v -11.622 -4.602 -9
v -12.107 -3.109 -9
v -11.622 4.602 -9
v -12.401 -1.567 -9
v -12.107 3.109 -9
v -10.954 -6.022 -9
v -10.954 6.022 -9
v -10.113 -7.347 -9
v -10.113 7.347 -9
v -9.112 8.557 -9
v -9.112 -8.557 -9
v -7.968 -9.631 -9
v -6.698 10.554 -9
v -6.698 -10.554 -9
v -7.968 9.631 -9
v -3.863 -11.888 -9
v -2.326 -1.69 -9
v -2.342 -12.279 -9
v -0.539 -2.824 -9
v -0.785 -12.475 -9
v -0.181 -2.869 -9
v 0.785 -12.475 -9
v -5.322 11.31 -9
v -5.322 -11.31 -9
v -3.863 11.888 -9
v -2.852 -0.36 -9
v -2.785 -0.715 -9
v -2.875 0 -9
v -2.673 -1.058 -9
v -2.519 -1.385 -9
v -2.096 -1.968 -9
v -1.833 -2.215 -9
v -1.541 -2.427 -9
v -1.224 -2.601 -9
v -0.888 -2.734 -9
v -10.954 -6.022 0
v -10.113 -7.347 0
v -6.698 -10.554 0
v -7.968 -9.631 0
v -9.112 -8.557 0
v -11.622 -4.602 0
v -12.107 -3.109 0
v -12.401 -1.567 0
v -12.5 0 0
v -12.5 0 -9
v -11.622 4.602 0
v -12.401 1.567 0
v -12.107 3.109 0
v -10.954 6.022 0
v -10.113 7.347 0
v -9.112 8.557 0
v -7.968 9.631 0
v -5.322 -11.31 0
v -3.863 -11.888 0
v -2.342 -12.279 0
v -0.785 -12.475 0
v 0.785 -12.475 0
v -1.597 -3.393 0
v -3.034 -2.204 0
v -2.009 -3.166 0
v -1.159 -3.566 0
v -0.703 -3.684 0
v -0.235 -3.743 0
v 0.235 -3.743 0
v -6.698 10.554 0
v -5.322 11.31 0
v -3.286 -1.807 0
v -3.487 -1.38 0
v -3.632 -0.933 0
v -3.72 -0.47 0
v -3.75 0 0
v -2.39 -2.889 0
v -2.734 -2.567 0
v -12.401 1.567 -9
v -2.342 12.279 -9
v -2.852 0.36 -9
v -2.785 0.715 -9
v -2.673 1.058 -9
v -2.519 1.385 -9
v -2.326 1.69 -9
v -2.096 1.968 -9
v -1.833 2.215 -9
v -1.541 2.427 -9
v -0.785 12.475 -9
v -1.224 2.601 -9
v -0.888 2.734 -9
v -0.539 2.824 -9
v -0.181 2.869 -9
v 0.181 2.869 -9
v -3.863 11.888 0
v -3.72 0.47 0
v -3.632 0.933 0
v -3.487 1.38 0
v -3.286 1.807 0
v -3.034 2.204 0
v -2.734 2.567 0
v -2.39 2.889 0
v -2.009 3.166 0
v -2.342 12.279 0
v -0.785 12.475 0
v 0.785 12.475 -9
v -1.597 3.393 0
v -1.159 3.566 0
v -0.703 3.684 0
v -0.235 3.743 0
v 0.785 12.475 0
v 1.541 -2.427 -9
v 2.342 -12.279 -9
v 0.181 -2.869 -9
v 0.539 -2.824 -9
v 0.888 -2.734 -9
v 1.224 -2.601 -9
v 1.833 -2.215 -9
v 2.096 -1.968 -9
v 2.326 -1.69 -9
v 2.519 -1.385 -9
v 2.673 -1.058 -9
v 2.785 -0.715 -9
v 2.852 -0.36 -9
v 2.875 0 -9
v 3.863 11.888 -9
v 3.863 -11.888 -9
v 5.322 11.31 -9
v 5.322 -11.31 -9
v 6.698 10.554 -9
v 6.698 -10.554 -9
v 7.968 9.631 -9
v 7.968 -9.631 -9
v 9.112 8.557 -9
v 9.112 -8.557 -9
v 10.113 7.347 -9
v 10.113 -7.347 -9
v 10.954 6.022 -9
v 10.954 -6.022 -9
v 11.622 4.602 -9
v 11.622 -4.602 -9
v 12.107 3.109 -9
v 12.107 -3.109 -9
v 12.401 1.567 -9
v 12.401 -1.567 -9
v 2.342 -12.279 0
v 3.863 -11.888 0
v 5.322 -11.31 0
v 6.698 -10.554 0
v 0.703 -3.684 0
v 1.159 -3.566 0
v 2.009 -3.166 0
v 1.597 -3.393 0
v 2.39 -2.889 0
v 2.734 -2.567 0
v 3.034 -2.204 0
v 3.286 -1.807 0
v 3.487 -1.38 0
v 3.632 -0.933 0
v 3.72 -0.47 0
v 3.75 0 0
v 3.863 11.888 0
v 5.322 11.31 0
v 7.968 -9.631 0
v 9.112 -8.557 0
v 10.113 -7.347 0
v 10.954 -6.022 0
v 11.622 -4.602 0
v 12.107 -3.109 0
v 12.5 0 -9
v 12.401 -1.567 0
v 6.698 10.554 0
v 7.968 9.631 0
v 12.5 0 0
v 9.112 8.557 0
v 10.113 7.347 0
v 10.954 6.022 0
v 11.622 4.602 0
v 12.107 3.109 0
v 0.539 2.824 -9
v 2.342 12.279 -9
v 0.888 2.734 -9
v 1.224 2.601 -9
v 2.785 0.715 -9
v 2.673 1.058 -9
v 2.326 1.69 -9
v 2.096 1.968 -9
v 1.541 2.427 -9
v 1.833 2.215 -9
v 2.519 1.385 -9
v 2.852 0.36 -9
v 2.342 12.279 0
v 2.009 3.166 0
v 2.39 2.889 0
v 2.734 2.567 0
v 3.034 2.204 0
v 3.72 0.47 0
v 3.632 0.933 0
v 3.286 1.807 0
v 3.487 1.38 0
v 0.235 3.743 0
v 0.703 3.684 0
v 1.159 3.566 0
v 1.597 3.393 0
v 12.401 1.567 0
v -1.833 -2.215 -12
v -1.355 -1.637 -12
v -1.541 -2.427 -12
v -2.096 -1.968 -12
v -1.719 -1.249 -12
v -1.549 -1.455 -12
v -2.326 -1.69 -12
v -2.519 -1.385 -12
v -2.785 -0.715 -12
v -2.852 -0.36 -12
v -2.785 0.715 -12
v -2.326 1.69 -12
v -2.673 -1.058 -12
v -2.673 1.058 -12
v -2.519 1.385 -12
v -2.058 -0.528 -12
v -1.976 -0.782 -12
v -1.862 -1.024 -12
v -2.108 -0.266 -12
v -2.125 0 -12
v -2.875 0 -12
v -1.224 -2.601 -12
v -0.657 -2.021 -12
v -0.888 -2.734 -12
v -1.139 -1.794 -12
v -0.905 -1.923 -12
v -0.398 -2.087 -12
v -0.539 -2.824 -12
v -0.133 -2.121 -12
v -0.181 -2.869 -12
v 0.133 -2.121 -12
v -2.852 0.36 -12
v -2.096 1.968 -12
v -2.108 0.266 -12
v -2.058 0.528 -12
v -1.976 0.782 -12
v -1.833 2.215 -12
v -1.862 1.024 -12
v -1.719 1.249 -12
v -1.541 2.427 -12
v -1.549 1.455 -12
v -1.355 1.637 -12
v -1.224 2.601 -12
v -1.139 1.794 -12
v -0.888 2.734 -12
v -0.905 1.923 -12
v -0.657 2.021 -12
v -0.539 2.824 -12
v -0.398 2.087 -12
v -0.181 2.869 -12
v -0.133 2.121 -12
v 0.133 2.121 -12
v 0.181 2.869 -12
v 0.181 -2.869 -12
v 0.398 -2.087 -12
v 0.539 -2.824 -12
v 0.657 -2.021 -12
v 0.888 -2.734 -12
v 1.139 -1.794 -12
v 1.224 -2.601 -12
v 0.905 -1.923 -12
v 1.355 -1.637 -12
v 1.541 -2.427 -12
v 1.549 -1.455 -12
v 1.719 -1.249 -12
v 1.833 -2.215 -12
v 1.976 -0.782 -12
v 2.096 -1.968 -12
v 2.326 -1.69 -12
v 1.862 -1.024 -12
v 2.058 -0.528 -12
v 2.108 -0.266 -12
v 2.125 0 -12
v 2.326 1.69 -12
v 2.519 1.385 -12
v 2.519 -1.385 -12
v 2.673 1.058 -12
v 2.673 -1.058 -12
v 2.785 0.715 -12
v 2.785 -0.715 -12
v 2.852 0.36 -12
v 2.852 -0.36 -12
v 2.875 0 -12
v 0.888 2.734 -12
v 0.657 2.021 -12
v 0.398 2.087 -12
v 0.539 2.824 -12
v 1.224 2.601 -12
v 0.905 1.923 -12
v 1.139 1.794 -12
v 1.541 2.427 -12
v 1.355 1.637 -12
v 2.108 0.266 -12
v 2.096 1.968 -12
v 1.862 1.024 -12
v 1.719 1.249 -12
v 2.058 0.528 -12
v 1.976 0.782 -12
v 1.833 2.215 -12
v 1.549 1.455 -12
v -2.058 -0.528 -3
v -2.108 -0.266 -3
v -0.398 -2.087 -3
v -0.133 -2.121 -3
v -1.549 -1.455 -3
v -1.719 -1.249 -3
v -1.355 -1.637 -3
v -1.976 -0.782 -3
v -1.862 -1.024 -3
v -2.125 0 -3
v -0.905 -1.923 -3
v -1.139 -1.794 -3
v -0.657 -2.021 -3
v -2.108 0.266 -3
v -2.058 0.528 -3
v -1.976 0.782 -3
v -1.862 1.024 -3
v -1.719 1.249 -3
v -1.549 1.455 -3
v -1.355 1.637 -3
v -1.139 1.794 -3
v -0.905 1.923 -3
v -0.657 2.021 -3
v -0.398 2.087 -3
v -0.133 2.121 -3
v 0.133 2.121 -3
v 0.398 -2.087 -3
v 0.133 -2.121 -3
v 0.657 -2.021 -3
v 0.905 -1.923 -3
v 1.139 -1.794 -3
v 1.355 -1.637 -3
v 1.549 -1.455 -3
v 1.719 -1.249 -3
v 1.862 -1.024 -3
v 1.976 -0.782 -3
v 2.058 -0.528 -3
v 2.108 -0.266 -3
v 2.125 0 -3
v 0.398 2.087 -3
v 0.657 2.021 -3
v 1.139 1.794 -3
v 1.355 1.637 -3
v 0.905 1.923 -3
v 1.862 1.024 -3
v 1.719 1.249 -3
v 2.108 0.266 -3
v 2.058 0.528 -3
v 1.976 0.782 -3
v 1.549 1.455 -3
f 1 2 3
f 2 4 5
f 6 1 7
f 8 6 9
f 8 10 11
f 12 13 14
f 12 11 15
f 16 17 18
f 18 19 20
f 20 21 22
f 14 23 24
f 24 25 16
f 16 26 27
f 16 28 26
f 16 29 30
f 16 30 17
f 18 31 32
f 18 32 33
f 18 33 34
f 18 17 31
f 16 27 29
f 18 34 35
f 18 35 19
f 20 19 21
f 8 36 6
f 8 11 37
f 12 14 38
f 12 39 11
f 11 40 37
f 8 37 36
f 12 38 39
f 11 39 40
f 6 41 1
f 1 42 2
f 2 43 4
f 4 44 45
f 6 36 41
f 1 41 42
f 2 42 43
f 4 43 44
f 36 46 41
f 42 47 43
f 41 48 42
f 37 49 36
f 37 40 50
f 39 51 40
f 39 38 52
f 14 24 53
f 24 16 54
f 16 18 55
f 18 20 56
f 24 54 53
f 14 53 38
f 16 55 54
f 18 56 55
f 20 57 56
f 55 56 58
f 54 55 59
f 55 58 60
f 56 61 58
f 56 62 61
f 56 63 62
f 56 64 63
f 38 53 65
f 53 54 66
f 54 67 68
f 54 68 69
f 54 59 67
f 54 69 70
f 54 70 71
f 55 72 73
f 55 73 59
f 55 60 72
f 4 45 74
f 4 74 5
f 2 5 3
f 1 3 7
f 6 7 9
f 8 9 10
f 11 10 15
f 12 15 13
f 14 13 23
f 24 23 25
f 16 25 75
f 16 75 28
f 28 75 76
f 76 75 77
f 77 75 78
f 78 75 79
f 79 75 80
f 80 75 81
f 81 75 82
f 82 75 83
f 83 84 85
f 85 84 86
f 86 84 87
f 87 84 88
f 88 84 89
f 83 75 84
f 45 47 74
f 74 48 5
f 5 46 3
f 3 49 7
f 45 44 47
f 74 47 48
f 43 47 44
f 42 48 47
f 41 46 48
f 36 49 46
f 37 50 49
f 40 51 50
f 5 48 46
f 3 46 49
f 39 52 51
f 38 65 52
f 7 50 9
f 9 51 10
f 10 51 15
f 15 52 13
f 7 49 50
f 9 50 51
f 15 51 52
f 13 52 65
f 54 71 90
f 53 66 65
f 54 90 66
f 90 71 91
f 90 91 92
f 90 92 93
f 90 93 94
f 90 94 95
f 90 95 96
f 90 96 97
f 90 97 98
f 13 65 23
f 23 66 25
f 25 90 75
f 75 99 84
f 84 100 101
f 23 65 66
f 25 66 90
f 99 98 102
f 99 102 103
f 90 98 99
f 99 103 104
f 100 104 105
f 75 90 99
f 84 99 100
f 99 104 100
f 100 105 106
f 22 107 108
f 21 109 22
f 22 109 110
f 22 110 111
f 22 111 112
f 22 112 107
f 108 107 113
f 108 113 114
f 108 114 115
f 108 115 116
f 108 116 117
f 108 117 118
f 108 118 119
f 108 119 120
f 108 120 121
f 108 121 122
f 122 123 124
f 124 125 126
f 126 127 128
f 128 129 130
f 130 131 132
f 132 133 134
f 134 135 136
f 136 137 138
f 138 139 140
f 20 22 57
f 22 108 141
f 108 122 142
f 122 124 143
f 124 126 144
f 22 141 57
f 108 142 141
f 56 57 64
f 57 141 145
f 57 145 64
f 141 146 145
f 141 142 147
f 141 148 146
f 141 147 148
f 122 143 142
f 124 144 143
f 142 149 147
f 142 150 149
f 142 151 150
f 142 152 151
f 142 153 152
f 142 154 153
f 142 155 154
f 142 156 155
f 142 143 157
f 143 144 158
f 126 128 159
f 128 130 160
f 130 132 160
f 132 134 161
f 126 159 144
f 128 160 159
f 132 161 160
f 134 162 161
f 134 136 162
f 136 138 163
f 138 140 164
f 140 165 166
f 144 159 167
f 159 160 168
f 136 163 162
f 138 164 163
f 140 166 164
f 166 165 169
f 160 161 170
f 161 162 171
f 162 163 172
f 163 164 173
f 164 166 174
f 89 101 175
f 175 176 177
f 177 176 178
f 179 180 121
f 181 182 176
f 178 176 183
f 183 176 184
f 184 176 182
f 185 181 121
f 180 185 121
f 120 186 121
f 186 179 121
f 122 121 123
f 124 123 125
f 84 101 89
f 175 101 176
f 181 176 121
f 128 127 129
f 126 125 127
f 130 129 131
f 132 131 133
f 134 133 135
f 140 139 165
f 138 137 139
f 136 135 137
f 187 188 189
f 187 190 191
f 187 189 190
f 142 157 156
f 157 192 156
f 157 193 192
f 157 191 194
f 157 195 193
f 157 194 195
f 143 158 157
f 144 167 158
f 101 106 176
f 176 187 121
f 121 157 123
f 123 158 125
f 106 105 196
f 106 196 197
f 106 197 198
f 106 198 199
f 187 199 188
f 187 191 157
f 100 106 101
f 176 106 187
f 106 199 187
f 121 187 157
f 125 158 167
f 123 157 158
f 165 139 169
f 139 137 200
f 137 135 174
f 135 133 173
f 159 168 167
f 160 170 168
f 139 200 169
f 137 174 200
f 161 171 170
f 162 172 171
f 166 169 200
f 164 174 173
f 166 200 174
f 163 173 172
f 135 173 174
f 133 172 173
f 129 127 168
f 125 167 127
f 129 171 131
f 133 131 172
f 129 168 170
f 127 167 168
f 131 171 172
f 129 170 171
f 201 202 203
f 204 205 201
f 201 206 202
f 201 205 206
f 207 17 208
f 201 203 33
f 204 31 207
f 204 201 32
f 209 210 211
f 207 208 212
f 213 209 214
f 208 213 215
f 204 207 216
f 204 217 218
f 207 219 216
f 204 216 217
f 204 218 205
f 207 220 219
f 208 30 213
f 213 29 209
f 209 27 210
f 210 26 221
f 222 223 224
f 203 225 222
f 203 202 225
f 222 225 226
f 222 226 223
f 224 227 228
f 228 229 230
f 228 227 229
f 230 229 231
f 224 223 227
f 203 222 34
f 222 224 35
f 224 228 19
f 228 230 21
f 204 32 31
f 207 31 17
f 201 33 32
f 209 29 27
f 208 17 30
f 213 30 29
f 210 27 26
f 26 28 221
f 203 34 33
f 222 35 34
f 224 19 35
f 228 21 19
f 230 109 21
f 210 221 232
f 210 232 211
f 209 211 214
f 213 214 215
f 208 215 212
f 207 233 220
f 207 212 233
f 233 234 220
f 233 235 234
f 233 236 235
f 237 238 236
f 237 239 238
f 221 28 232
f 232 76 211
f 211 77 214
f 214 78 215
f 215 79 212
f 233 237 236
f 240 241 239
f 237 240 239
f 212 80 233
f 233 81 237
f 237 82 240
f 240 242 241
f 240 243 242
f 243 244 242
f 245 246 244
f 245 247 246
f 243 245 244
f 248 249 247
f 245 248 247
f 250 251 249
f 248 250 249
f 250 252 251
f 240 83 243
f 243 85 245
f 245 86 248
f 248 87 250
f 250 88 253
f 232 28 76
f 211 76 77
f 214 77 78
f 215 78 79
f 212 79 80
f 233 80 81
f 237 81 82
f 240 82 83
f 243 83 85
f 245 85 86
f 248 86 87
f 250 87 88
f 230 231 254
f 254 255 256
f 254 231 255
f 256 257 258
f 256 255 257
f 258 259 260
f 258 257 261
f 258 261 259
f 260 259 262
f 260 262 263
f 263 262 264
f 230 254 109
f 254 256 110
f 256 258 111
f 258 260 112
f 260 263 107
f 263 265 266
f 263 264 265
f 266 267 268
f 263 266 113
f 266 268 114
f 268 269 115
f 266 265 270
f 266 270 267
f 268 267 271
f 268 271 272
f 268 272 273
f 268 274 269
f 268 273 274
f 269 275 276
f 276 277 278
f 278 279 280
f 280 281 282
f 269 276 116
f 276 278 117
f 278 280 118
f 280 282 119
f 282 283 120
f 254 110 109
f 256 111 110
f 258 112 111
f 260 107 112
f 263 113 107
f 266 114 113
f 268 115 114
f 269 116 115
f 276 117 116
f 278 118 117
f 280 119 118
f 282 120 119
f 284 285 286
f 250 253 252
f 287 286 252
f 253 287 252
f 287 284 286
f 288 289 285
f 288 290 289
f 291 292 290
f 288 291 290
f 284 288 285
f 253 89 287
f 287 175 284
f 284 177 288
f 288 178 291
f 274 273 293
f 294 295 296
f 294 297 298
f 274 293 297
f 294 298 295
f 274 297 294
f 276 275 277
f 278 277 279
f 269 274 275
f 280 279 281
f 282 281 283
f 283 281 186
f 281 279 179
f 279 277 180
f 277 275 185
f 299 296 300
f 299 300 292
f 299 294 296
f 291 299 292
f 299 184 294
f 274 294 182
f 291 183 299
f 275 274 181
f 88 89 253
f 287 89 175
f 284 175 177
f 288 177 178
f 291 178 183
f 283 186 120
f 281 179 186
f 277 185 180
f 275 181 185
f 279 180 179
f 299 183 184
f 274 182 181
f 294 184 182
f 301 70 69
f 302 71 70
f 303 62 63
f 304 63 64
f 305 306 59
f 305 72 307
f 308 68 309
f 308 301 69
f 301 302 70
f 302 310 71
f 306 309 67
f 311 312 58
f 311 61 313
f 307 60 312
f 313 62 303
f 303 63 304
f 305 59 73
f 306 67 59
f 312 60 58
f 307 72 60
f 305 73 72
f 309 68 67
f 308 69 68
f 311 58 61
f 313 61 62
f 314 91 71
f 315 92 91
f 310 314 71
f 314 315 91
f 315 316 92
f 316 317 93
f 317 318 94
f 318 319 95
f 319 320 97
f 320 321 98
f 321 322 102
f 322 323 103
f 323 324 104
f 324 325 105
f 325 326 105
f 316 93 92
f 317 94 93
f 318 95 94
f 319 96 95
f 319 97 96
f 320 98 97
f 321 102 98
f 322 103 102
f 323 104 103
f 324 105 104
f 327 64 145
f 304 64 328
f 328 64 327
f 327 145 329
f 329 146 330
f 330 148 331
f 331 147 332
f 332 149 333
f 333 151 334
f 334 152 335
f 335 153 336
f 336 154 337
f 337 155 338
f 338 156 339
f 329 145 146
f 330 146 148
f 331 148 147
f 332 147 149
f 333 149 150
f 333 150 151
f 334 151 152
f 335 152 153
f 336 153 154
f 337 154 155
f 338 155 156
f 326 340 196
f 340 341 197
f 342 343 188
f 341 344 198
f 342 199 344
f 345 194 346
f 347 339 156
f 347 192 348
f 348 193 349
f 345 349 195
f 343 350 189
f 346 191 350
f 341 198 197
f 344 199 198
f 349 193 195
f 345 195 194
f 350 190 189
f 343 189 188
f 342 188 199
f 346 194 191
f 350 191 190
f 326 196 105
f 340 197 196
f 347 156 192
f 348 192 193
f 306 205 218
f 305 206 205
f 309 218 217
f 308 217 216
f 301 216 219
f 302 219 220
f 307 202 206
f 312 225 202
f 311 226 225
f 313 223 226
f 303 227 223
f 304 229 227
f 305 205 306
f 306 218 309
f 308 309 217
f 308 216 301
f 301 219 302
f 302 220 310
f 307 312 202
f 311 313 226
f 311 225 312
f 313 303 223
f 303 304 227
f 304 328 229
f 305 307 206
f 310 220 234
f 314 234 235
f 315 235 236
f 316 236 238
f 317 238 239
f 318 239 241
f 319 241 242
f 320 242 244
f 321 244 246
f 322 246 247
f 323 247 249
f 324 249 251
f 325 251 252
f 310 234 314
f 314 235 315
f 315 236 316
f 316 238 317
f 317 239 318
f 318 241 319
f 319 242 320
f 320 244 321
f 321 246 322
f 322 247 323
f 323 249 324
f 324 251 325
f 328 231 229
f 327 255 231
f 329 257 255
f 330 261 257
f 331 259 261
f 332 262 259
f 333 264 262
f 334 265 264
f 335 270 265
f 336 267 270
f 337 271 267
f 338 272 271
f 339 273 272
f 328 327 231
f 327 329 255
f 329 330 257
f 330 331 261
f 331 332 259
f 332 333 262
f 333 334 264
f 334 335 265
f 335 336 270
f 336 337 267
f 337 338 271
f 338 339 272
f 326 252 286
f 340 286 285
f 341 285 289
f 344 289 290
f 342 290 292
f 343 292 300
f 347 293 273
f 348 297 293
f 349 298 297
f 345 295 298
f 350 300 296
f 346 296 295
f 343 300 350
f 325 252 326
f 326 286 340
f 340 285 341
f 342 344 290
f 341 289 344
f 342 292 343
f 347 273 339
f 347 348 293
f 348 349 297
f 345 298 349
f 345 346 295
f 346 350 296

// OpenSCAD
$fn = 50;

difference() {
	union() {
		translate(v = [0, 0, -9.0]) {
			cylinder(h = 9, r = 12.5);
		}
		#translate(v = [0, 0, -12.0]) {
			cylinder(h = 12, r = 2.875);
		}
	}
	union() {
		translate(v = [0, 0, 0]) {
			rotate(a = [0, 0, 0]) {
				difference() {
					union() {
						translate(v = [0, 0, -12.0]) {
							cylinder(h = 12, r = 2.0);
						}
						translate(v = [0, 0, -3]) {
							cylinder(h = 3, r1 = 2.125, r2 = 3.75);
						}
						translate(v = [0, 0, -12.0]) {
							cylinder(h = 12, r = 2.125);
						}
						translate(v = [0, 0, -12.0]) {
							cylinder(h = 12, r = 2.0);
						}
					}
					union();
				}
			}
		}
	}
}
